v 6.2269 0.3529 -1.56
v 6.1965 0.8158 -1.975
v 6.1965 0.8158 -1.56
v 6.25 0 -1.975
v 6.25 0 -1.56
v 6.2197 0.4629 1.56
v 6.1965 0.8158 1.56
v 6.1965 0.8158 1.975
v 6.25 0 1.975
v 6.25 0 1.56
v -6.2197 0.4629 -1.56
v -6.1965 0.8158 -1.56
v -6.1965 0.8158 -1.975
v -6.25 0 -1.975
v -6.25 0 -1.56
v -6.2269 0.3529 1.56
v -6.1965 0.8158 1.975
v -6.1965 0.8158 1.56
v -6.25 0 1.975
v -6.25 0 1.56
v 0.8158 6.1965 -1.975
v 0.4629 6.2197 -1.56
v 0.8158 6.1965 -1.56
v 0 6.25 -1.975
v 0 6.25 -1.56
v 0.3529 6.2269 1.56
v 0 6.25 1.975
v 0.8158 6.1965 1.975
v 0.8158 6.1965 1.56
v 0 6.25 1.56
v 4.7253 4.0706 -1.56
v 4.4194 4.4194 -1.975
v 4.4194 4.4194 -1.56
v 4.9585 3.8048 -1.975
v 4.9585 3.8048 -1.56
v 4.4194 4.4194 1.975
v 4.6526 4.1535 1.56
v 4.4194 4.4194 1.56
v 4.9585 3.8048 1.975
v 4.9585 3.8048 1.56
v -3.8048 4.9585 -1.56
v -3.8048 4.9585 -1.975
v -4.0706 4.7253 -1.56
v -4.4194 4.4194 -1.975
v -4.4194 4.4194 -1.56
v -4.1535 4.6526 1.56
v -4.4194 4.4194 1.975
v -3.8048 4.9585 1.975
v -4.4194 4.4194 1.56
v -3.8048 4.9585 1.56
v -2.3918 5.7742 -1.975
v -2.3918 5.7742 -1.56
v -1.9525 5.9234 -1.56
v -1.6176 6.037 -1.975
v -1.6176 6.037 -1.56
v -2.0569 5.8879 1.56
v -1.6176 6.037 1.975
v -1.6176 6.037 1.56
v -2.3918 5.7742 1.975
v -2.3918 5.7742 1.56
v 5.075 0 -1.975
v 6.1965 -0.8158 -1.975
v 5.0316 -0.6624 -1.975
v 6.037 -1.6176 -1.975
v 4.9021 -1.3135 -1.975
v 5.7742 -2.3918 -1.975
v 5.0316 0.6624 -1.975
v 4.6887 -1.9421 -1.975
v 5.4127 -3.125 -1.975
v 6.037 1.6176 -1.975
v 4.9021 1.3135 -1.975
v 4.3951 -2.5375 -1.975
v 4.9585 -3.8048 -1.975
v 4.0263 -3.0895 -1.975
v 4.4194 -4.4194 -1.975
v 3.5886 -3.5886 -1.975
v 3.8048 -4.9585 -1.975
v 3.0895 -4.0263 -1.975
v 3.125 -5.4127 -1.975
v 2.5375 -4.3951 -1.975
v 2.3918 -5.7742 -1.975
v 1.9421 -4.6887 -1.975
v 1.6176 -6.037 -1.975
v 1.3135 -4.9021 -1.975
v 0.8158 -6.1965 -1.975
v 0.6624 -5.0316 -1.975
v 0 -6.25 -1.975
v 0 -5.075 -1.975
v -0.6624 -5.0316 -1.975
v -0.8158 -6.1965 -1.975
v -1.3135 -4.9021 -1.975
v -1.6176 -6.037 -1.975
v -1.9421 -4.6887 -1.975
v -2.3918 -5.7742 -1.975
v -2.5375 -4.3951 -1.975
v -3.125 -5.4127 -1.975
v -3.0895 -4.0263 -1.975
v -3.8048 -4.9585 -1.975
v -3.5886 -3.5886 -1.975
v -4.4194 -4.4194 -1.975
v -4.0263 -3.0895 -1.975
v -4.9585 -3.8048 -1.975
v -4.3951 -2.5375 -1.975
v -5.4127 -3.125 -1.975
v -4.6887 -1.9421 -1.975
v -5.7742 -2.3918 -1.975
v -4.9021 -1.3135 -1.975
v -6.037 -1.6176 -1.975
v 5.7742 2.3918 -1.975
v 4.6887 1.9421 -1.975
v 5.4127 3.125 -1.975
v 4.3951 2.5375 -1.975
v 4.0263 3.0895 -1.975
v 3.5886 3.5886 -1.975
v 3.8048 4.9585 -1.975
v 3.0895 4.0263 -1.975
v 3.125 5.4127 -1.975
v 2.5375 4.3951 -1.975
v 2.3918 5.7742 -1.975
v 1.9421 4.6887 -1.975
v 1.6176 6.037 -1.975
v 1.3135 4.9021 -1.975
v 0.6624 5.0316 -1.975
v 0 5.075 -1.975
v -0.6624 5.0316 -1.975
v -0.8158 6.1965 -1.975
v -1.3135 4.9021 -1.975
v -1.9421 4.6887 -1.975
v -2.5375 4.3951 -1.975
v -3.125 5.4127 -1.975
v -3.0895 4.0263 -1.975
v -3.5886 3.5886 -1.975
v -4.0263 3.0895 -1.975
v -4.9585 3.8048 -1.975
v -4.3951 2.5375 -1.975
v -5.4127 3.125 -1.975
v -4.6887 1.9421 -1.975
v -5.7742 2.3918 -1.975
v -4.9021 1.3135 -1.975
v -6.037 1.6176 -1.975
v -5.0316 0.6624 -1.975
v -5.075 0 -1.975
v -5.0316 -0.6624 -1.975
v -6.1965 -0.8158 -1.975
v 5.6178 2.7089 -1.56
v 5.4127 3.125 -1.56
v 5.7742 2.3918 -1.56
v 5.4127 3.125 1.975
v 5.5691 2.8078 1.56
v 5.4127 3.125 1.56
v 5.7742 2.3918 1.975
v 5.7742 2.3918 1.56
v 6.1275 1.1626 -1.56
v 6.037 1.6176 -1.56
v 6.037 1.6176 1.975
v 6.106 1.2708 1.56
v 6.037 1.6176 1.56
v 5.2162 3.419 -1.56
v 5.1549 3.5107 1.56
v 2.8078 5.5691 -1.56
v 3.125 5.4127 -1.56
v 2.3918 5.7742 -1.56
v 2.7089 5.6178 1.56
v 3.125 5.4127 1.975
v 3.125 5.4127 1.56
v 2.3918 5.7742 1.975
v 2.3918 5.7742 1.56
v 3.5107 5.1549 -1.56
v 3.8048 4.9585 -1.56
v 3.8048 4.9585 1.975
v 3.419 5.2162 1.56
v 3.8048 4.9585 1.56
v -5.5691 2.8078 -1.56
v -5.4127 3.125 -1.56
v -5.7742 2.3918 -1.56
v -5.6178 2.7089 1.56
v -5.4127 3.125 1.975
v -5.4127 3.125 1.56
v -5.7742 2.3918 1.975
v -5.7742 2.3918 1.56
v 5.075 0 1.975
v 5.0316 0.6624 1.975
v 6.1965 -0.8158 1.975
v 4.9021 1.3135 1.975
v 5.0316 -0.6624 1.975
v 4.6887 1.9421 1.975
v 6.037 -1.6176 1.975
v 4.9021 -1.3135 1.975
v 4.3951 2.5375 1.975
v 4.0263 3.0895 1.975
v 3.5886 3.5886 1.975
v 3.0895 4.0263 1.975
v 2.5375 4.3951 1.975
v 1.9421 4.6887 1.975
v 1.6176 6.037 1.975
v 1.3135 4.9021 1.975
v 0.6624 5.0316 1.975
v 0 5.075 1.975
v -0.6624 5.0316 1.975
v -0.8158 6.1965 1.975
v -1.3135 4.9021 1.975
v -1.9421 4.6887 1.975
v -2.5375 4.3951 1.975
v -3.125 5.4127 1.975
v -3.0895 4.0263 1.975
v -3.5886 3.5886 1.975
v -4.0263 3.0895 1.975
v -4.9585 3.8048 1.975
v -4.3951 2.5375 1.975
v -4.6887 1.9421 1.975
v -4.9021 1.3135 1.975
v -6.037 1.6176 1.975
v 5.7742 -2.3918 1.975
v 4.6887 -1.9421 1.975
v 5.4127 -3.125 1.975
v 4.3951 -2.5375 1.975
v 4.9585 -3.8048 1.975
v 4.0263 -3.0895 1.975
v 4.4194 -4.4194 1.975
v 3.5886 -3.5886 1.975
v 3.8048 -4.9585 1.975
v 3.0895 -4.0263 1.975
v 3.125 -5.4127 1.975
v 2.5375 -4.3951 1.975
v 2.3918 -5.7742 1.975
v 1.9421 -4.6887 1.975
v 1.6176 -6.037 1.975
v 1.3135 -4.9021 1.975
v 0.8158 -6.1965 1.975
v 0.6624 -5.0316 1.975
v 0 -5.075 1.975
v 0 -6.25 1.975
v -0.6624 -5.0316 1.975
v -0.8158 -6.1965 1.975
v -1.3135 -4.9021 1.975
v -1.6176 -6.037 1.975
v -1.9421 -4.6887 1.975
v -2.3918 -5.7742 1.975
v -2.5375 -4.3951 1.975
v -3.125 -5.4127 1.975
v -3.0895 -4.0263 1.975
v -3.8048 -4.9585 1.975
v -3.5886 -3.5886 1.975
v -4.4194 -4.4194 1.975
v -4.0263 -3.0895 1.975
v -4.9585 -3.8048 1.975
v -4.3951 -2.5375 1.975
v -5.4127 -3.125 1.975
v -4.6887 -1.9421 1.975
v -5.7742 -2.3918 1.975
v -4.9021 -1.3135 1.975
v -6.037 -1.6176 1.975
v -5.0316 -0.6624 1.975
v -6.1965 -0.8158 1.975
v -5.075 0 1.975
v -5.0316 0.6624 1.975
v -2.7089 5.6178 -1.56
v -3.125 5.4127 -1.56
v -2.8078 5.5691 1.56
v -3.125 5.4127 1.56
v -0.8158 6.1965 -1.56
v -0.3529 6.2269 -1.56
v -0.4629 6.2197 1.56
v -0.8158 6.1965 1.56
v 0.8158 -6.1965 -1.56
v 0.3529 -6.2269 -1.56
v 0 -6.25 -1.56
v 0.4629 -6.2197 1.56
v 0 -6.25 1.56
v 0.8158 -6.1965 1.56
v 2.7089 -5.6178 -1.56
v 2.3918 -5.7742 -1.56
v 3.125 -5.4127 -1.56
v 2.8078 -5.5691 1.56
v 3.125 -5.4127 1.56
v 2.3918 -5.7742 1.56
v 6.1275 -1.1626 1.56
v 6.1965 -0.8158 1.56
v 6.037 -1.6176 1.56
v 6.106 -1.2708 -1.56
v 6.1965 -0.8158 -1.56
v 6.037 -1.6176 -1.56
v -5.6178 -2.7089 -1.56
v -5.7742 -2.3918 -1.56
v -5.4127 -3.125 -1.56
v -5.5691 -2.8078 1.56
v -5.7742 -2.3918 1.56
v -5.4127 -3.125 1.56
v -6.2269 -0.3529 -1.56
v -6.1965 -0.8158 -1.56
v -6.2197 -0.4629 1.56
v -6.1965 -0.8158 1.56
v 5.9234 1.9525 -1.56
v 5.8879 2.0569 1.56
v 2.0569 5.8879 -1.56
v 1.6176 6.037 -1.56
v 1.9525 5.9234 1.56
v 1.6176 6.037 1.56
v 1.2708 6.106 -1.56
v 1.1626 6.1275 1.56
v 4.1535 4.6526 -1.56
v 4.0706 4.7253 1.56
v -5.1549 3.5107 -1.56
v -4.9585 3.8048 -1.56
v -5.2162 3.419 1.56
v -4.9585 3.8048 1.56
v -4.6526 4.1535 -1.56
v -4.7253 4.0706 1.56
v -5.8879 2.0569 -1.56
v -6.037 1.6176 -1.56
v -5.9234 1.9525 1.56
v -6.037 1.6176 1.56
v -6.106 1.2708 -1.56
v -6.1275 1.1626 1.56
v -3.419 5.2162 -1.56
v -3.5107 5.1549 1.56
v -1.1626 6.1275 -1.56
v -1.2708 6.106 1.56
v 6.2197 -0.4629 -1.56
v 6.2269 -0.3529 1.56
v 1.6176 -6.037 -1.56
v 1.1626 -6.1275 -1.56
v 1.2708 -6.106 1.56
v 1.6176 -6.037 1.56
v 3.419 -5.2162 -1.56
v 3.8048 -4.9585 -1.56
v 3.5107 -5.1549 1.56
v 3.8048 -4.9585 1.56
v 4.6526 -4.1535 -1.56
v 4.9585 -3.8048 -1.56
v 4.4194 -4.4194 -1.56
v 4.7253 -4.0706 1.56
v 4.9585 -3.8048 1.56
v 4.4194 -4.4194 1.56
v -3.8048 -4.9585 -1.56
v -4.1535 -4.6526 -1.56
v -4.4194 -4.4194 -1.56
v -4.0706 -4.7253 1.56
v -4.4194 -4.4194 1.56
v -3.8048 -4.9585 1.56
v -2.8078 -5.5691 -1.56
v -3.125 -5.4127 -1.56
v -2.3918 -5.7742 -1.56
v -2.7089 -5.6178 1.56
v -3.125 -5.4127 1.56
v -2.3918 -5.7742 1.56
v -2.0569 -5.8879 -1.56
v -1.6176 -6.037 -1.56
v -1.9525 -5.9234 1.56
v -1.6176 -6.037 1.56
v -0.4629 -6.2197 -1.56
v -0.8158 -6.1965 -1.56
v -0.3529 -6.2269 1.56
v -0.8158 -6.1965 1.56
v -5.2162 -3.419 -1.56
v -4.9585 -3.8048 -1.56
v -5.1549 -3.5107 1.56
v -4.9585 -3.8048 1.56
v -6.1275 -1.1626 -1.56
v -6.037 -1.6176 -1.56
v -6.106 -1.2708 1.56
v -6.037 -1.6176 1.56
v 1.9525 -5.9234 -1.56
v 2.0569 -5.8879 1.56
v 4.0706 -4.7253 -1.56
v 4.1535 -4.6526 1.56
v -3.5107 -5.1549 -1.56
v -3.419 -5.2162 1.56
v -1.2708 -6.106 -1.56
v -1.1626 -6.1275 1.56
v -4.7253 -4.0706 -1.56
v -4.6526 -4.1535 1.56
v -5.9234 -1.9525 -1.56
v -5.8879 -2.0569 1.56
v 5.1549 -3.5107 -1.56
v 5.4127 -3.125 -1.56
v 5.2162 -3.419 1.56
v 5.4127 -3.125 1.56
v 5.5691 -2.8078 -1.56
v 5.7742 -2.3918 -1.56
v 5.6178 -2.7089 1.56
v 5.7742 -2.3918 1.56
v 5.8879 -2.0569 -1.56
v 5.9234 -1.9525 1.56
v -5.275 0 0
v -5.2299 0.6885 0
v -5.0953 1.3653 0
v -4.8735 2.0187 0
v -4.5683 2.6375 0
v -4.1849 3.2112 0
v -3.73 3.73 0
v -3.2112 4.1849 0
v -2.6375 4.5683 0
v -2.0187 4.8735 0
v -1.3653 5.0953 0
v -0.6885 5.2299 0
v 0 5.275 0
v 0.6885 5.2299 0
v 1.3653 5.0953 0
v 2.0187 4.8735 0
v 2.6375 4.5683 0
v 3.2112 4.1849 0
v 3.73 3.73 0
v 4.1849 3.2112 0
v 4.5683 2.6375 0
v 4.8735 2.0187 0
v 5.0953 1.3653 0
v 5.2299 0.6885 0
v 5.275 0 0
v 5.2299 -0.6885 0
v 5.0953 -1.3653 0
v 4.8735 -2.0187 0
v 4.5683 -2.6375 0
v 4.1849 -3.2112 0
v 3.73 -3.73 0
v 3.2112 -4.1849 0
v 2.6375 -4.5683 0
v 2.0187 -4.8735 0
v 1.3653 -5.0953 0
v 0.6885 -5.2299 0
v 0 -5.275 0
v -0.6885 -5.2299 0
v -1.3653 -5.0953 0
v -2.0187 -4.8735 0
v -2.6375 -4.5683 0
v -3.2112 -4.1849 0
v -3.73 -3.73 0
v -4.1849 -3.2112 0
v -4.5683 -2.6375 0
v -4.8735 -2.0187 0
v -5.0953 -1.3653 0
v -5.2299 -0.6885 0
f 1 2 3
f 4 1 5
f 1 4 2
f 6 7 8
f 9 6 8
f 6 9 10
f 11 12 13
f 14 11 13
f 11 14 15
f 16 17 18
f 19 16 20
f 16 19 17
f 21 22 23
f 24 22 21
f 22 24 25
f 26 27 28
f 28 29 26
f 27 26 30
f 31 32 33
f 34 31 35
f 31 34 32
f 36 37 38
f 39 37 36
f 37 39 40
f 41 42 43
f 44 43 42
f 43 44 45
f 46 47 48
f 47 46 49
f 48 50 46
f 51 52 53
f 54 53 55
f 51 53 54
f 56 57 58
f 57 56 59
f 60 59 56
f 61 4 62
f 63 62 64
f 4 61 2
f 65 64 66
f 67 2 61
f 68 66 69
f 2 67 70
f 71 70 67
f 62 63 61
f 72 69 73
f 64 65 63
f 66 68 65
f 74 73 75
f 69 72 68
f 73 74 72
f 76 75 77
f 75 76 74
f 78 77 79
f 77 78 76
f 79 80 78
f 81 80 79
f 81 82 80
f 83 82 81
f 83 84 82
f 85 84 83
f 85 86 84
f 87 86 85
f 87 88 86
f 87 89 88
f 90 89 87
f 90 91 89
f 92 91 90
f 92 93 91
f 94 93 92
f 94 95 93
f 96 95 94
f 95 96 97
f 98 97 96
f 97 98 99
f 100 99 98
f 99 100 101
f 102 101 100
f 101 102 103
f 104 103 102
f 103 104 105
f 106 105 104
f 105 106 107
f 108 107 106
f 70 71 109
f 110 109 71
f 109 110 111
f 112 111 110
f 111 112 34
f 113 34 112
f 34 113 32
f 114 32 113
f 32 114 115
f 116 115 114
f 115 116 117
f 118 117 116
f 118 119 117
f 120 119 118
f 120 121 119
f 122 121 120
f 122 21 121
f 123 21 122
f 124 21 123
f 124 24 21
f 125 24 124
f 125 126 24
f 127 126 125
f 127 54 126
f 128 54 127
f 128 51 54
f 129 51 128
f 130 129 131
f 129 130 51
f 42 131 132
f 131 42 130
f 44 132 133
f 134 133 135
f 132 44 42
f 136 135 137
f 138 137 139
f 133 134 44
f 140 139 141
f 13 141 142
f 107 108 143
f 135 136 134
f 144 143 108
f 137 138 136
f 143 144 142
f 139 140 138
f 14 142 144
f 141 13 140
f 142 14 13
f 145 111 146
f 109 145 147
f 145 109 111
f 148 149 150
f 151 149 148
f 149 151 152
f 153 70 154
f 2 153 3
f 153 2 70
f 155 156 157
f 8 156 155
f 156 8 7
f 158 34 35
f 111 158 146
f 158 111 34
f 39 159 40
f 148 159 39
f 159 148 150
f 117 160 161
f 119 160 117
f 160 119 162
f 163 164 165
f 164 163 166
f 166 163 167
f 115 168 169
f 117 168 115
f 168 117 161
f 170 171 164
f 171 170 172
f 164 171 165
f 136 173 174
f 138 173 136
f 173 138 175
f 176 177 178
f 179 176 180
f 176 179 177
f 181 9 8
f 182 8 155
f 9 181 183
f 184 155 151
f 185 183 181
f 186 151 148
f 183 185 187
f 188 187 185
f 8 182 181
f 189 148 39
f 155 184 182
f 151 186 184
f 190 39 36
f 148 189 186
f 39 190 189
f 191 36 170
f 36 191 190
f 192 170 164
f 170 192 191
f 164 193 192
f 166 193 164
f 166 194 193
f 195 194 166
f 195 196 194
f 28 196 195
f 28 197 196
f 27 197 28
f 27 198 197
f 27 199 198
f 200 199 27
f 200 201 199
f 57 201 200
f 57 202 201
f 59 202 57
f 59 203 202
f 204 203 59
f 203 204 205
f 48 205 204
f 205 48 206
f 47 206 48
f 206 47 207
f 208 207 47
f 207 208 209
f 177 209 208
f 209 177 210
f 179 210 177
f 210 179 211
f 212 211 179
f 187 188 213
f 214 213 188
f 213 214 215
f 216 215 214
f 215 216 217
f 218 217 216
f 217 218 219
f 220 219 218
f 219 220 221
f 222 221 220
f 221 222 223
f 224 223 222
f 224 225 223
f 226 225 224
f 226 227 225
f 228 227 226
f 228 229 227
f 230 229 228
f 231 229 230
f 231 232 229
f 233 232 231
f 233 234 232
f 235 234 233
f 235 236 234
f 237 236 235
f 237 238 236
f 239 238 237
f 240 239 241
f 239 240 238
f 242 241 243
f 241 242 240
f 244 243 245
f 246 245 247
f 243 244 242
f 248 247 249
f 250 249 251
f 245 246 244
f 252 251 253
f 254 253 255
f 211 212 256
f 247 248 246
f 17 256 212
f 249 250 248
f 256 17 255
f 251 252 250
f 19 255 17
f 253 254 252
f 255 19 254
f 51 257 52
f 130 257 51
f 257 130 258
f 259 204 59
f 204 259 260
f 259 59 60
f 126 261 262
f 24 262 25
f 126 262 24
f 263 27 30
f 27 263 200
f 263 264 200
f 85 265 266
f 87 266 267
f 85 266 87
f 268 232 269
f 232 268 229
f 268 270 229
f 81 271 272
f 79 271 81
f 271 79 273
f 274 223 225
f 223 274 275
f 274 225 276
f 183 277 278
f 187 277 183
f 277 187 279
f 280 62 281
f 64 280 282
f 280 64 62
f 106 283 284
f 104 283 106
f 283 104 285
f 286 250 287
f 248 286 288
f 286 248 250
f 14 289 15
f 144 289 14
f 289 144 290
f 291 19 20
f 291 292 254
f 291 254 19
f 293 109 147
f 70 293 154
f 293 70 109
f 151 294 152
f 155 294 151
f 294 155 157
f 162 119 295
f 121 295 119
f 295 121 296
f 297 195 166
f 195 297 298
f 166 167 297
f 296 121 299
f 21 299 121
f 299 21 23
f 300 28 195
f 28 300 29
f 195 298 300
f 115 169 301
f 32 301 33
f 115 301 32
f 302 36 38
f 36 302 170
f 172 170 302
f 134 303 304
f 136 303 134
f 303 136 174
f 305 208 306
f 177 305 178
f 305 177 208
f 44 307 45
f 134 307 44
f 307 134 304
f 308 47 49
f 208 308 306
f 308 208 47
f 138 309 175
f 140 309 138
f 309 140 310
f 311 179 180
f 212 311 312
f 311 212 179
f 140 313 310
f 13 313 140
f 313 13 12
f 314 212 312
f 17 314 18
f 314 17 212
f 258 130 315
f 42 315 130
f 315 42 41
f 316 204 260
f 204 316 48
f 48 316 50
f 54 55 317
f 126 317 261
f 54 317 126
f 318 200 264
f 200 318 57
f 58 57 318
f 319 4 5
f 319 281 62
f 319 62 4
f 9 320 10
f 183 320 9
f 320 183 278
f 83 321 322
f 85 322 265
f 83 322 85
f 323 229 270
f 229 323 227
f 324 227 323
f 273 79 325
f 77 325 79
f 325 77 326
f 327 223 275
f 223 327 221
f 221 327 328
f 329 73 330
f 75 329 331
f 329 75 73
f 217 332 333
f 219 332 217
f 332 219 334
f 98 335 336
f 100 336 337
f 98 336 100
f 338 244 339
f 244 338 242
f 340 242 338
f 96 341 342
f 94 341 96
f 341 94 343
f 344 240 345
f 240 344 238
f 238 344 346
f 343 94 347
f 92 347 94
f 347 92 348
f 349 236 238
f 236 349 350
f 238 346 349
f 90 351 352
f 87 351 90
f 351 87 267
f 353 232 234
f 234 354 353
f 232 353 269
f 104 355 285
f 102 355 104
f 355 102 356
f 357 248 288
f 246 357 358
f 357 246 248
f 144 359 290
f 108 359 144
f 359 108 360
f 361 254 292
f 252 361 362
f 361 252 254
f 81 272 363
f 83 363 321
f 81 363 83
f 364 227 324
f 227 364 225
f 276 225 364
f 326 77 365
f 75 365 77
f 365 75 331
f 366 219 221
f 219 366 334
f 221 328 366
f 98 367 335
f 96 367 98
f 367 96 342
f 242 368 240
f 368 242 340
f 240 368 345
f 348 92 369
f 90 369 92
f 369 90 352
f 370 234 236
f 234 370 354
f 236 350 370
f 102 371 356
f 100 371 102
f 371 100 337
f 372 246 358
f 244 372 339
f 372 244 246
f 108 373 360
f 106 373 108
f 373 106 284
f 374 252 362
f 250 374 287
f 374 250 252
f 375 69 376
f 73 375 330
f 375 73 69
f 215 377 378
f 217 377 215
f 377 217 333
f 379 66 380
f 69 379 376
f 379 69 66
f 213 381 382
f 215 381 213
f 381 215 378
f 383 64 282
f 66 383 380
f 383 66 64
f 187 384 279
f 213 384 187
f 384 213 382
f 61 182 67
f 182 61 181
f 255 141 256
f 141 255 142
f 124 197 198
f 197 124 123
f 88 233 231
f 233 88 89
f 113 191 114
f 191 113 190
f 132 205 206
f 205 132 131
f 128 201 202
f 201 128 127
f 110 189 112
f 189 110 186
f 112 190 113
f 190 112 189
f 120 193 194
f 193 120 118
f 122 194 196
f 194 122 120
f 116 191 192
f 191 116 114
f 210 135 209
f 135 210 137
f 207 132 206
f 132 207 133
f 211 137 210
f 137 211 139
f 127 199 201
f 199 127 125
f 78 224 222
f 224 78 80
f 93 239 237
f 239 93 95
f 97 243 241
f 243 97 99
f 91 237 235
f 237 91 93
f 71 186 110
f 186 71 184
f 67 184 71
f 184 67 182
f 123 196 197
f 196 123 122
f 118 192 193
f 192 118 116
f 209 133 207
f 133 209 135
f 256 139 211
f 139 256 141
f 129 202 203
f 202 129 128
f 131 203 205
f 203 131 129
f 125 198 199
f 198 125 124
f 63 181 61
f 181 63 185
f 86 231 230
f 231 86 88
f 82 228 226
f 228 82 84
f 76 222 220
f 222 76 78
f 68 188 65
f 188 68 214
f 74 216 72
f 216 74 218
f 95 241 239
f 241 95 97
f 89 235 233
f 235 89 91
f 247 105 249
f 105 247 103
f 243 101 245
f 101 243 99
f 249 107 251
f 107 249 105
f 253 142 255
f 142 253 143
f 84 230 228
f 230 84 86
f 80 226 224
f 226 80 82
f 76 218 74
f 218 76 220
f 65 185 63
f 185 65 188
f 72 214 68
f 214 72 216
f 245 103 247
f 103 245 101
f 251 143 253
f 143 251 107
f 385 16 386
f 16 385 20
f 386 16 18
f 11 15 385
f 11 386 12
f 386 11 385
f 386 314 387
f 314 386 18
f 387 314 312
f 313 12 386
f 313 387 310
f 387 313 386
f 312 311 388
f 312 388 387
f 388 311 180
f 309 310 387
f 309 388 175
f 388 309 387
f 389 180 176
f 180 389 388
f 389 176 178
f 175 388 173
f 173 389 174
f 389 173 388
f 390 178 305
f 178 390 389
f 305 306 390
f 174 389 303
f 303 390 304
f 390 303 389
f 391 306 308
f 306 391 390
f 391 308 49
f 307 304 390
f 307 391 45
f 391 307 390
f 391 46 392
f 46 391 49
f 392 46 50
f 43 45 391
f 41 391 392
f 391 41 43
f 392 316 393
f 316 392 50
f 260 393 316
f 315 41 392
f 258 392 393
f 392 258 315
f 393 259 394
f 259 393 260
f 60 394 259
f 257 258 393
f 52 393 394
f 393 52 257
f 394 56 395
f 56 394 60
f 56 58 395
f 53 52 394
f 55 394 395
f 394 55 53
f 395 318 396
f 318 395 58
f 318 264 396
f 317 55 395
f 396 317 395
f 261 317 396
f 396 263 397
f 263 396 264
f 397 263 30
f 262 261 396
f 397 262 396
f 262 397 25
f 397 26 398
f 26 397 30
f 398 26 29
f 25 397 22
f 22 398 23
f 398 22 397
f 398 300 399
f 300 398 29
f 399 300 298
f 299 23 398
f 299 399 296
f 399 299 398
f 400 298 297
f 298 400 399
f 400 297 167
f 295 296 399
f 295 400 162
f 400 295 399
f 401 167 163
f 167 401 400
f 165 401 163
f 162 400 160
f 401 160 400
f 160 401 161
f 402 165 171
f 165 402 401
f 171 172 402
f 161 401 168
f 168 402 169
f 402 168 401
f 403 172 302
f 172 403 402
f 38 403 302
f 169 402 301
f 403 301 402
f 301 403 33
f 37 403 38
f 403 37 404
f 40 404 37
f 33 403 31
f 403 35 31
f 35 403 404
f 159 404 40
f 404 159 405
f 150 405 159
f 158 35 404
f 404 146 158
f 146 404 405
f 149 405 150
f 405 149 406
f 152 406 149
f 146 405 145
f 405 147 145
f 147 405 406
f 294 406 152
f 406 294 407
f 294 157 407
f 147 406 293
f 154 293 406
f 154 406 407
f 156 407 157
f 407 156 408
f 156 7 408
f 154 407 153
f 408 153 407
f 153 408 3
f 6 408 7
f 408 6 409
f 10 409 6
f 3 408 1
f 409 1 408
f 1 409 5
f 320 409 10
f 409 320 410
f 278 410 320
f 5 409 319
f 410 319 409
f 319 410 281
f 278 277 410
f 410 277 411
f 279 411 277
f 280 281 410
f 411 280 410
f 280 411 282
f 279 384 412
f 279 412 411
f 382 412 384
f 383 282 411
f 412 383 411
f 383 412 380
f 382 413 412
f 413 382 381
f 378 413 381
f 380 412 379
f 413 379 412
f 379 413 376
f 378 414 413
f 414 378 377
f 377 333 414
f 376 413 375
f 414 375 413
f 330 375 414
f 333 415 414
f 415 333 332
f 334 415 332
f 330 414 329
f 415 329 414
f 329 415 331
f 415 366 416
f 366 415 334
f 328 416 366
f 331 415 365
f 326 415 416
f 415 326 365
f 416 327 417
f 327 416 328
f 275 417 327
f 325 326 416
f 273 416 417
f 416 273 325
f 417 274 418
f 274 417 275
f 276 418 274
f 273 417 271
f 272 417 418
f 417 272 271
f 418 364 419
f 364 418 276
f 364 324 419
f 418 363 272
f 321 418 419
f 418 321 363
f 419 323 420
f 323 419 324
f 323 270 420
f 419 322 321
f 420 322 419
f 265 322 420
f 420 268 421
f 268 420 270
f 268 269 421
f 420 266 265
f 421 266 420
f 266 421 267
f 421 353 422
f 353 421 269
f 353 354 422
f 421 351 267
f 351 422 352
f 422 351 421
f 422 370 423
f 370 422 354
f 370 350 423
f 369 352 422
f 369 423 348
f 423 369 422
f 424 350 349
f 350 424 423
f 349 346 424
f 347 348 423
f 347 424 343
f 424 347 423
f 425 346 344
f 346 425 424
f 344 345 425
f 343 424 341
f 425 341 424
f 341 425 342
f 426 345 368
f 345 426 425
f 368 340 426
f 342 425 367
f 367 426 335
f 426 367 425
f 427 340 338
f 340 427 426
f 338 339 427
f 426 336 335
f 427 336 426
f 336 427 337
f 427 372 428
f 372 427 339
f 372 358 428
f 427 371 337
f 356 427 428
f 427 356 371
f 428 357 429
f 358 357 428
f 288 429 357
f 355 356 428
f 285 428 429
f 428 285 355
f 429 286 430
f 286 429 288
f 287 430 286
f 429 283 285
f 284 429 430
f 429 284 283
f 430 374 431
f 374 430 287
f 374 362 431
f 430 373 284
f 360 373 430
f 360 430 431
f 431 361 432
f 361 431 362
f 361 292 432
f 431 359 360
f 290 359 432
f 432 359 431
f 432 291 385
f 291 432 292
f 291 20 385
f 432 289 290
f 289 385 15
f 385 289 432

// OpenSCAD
$fn=48;

inner_d = 10.15;
small_d = 10.55;
big_d = 12.5;

difference(){
  cylinder(d=big_d, h=3.95, center=true);
  cylinder(d=inner_d, h=3.95+2, center=true);
  U_r = 2.0;
  rotate_extrude()
    translate([U_r + small_d/2, 0, 0]){
      scale([1,1.6])
      rotate([0,0,45])
        square(U_r*sqrt(2), center=true);
    }
}
